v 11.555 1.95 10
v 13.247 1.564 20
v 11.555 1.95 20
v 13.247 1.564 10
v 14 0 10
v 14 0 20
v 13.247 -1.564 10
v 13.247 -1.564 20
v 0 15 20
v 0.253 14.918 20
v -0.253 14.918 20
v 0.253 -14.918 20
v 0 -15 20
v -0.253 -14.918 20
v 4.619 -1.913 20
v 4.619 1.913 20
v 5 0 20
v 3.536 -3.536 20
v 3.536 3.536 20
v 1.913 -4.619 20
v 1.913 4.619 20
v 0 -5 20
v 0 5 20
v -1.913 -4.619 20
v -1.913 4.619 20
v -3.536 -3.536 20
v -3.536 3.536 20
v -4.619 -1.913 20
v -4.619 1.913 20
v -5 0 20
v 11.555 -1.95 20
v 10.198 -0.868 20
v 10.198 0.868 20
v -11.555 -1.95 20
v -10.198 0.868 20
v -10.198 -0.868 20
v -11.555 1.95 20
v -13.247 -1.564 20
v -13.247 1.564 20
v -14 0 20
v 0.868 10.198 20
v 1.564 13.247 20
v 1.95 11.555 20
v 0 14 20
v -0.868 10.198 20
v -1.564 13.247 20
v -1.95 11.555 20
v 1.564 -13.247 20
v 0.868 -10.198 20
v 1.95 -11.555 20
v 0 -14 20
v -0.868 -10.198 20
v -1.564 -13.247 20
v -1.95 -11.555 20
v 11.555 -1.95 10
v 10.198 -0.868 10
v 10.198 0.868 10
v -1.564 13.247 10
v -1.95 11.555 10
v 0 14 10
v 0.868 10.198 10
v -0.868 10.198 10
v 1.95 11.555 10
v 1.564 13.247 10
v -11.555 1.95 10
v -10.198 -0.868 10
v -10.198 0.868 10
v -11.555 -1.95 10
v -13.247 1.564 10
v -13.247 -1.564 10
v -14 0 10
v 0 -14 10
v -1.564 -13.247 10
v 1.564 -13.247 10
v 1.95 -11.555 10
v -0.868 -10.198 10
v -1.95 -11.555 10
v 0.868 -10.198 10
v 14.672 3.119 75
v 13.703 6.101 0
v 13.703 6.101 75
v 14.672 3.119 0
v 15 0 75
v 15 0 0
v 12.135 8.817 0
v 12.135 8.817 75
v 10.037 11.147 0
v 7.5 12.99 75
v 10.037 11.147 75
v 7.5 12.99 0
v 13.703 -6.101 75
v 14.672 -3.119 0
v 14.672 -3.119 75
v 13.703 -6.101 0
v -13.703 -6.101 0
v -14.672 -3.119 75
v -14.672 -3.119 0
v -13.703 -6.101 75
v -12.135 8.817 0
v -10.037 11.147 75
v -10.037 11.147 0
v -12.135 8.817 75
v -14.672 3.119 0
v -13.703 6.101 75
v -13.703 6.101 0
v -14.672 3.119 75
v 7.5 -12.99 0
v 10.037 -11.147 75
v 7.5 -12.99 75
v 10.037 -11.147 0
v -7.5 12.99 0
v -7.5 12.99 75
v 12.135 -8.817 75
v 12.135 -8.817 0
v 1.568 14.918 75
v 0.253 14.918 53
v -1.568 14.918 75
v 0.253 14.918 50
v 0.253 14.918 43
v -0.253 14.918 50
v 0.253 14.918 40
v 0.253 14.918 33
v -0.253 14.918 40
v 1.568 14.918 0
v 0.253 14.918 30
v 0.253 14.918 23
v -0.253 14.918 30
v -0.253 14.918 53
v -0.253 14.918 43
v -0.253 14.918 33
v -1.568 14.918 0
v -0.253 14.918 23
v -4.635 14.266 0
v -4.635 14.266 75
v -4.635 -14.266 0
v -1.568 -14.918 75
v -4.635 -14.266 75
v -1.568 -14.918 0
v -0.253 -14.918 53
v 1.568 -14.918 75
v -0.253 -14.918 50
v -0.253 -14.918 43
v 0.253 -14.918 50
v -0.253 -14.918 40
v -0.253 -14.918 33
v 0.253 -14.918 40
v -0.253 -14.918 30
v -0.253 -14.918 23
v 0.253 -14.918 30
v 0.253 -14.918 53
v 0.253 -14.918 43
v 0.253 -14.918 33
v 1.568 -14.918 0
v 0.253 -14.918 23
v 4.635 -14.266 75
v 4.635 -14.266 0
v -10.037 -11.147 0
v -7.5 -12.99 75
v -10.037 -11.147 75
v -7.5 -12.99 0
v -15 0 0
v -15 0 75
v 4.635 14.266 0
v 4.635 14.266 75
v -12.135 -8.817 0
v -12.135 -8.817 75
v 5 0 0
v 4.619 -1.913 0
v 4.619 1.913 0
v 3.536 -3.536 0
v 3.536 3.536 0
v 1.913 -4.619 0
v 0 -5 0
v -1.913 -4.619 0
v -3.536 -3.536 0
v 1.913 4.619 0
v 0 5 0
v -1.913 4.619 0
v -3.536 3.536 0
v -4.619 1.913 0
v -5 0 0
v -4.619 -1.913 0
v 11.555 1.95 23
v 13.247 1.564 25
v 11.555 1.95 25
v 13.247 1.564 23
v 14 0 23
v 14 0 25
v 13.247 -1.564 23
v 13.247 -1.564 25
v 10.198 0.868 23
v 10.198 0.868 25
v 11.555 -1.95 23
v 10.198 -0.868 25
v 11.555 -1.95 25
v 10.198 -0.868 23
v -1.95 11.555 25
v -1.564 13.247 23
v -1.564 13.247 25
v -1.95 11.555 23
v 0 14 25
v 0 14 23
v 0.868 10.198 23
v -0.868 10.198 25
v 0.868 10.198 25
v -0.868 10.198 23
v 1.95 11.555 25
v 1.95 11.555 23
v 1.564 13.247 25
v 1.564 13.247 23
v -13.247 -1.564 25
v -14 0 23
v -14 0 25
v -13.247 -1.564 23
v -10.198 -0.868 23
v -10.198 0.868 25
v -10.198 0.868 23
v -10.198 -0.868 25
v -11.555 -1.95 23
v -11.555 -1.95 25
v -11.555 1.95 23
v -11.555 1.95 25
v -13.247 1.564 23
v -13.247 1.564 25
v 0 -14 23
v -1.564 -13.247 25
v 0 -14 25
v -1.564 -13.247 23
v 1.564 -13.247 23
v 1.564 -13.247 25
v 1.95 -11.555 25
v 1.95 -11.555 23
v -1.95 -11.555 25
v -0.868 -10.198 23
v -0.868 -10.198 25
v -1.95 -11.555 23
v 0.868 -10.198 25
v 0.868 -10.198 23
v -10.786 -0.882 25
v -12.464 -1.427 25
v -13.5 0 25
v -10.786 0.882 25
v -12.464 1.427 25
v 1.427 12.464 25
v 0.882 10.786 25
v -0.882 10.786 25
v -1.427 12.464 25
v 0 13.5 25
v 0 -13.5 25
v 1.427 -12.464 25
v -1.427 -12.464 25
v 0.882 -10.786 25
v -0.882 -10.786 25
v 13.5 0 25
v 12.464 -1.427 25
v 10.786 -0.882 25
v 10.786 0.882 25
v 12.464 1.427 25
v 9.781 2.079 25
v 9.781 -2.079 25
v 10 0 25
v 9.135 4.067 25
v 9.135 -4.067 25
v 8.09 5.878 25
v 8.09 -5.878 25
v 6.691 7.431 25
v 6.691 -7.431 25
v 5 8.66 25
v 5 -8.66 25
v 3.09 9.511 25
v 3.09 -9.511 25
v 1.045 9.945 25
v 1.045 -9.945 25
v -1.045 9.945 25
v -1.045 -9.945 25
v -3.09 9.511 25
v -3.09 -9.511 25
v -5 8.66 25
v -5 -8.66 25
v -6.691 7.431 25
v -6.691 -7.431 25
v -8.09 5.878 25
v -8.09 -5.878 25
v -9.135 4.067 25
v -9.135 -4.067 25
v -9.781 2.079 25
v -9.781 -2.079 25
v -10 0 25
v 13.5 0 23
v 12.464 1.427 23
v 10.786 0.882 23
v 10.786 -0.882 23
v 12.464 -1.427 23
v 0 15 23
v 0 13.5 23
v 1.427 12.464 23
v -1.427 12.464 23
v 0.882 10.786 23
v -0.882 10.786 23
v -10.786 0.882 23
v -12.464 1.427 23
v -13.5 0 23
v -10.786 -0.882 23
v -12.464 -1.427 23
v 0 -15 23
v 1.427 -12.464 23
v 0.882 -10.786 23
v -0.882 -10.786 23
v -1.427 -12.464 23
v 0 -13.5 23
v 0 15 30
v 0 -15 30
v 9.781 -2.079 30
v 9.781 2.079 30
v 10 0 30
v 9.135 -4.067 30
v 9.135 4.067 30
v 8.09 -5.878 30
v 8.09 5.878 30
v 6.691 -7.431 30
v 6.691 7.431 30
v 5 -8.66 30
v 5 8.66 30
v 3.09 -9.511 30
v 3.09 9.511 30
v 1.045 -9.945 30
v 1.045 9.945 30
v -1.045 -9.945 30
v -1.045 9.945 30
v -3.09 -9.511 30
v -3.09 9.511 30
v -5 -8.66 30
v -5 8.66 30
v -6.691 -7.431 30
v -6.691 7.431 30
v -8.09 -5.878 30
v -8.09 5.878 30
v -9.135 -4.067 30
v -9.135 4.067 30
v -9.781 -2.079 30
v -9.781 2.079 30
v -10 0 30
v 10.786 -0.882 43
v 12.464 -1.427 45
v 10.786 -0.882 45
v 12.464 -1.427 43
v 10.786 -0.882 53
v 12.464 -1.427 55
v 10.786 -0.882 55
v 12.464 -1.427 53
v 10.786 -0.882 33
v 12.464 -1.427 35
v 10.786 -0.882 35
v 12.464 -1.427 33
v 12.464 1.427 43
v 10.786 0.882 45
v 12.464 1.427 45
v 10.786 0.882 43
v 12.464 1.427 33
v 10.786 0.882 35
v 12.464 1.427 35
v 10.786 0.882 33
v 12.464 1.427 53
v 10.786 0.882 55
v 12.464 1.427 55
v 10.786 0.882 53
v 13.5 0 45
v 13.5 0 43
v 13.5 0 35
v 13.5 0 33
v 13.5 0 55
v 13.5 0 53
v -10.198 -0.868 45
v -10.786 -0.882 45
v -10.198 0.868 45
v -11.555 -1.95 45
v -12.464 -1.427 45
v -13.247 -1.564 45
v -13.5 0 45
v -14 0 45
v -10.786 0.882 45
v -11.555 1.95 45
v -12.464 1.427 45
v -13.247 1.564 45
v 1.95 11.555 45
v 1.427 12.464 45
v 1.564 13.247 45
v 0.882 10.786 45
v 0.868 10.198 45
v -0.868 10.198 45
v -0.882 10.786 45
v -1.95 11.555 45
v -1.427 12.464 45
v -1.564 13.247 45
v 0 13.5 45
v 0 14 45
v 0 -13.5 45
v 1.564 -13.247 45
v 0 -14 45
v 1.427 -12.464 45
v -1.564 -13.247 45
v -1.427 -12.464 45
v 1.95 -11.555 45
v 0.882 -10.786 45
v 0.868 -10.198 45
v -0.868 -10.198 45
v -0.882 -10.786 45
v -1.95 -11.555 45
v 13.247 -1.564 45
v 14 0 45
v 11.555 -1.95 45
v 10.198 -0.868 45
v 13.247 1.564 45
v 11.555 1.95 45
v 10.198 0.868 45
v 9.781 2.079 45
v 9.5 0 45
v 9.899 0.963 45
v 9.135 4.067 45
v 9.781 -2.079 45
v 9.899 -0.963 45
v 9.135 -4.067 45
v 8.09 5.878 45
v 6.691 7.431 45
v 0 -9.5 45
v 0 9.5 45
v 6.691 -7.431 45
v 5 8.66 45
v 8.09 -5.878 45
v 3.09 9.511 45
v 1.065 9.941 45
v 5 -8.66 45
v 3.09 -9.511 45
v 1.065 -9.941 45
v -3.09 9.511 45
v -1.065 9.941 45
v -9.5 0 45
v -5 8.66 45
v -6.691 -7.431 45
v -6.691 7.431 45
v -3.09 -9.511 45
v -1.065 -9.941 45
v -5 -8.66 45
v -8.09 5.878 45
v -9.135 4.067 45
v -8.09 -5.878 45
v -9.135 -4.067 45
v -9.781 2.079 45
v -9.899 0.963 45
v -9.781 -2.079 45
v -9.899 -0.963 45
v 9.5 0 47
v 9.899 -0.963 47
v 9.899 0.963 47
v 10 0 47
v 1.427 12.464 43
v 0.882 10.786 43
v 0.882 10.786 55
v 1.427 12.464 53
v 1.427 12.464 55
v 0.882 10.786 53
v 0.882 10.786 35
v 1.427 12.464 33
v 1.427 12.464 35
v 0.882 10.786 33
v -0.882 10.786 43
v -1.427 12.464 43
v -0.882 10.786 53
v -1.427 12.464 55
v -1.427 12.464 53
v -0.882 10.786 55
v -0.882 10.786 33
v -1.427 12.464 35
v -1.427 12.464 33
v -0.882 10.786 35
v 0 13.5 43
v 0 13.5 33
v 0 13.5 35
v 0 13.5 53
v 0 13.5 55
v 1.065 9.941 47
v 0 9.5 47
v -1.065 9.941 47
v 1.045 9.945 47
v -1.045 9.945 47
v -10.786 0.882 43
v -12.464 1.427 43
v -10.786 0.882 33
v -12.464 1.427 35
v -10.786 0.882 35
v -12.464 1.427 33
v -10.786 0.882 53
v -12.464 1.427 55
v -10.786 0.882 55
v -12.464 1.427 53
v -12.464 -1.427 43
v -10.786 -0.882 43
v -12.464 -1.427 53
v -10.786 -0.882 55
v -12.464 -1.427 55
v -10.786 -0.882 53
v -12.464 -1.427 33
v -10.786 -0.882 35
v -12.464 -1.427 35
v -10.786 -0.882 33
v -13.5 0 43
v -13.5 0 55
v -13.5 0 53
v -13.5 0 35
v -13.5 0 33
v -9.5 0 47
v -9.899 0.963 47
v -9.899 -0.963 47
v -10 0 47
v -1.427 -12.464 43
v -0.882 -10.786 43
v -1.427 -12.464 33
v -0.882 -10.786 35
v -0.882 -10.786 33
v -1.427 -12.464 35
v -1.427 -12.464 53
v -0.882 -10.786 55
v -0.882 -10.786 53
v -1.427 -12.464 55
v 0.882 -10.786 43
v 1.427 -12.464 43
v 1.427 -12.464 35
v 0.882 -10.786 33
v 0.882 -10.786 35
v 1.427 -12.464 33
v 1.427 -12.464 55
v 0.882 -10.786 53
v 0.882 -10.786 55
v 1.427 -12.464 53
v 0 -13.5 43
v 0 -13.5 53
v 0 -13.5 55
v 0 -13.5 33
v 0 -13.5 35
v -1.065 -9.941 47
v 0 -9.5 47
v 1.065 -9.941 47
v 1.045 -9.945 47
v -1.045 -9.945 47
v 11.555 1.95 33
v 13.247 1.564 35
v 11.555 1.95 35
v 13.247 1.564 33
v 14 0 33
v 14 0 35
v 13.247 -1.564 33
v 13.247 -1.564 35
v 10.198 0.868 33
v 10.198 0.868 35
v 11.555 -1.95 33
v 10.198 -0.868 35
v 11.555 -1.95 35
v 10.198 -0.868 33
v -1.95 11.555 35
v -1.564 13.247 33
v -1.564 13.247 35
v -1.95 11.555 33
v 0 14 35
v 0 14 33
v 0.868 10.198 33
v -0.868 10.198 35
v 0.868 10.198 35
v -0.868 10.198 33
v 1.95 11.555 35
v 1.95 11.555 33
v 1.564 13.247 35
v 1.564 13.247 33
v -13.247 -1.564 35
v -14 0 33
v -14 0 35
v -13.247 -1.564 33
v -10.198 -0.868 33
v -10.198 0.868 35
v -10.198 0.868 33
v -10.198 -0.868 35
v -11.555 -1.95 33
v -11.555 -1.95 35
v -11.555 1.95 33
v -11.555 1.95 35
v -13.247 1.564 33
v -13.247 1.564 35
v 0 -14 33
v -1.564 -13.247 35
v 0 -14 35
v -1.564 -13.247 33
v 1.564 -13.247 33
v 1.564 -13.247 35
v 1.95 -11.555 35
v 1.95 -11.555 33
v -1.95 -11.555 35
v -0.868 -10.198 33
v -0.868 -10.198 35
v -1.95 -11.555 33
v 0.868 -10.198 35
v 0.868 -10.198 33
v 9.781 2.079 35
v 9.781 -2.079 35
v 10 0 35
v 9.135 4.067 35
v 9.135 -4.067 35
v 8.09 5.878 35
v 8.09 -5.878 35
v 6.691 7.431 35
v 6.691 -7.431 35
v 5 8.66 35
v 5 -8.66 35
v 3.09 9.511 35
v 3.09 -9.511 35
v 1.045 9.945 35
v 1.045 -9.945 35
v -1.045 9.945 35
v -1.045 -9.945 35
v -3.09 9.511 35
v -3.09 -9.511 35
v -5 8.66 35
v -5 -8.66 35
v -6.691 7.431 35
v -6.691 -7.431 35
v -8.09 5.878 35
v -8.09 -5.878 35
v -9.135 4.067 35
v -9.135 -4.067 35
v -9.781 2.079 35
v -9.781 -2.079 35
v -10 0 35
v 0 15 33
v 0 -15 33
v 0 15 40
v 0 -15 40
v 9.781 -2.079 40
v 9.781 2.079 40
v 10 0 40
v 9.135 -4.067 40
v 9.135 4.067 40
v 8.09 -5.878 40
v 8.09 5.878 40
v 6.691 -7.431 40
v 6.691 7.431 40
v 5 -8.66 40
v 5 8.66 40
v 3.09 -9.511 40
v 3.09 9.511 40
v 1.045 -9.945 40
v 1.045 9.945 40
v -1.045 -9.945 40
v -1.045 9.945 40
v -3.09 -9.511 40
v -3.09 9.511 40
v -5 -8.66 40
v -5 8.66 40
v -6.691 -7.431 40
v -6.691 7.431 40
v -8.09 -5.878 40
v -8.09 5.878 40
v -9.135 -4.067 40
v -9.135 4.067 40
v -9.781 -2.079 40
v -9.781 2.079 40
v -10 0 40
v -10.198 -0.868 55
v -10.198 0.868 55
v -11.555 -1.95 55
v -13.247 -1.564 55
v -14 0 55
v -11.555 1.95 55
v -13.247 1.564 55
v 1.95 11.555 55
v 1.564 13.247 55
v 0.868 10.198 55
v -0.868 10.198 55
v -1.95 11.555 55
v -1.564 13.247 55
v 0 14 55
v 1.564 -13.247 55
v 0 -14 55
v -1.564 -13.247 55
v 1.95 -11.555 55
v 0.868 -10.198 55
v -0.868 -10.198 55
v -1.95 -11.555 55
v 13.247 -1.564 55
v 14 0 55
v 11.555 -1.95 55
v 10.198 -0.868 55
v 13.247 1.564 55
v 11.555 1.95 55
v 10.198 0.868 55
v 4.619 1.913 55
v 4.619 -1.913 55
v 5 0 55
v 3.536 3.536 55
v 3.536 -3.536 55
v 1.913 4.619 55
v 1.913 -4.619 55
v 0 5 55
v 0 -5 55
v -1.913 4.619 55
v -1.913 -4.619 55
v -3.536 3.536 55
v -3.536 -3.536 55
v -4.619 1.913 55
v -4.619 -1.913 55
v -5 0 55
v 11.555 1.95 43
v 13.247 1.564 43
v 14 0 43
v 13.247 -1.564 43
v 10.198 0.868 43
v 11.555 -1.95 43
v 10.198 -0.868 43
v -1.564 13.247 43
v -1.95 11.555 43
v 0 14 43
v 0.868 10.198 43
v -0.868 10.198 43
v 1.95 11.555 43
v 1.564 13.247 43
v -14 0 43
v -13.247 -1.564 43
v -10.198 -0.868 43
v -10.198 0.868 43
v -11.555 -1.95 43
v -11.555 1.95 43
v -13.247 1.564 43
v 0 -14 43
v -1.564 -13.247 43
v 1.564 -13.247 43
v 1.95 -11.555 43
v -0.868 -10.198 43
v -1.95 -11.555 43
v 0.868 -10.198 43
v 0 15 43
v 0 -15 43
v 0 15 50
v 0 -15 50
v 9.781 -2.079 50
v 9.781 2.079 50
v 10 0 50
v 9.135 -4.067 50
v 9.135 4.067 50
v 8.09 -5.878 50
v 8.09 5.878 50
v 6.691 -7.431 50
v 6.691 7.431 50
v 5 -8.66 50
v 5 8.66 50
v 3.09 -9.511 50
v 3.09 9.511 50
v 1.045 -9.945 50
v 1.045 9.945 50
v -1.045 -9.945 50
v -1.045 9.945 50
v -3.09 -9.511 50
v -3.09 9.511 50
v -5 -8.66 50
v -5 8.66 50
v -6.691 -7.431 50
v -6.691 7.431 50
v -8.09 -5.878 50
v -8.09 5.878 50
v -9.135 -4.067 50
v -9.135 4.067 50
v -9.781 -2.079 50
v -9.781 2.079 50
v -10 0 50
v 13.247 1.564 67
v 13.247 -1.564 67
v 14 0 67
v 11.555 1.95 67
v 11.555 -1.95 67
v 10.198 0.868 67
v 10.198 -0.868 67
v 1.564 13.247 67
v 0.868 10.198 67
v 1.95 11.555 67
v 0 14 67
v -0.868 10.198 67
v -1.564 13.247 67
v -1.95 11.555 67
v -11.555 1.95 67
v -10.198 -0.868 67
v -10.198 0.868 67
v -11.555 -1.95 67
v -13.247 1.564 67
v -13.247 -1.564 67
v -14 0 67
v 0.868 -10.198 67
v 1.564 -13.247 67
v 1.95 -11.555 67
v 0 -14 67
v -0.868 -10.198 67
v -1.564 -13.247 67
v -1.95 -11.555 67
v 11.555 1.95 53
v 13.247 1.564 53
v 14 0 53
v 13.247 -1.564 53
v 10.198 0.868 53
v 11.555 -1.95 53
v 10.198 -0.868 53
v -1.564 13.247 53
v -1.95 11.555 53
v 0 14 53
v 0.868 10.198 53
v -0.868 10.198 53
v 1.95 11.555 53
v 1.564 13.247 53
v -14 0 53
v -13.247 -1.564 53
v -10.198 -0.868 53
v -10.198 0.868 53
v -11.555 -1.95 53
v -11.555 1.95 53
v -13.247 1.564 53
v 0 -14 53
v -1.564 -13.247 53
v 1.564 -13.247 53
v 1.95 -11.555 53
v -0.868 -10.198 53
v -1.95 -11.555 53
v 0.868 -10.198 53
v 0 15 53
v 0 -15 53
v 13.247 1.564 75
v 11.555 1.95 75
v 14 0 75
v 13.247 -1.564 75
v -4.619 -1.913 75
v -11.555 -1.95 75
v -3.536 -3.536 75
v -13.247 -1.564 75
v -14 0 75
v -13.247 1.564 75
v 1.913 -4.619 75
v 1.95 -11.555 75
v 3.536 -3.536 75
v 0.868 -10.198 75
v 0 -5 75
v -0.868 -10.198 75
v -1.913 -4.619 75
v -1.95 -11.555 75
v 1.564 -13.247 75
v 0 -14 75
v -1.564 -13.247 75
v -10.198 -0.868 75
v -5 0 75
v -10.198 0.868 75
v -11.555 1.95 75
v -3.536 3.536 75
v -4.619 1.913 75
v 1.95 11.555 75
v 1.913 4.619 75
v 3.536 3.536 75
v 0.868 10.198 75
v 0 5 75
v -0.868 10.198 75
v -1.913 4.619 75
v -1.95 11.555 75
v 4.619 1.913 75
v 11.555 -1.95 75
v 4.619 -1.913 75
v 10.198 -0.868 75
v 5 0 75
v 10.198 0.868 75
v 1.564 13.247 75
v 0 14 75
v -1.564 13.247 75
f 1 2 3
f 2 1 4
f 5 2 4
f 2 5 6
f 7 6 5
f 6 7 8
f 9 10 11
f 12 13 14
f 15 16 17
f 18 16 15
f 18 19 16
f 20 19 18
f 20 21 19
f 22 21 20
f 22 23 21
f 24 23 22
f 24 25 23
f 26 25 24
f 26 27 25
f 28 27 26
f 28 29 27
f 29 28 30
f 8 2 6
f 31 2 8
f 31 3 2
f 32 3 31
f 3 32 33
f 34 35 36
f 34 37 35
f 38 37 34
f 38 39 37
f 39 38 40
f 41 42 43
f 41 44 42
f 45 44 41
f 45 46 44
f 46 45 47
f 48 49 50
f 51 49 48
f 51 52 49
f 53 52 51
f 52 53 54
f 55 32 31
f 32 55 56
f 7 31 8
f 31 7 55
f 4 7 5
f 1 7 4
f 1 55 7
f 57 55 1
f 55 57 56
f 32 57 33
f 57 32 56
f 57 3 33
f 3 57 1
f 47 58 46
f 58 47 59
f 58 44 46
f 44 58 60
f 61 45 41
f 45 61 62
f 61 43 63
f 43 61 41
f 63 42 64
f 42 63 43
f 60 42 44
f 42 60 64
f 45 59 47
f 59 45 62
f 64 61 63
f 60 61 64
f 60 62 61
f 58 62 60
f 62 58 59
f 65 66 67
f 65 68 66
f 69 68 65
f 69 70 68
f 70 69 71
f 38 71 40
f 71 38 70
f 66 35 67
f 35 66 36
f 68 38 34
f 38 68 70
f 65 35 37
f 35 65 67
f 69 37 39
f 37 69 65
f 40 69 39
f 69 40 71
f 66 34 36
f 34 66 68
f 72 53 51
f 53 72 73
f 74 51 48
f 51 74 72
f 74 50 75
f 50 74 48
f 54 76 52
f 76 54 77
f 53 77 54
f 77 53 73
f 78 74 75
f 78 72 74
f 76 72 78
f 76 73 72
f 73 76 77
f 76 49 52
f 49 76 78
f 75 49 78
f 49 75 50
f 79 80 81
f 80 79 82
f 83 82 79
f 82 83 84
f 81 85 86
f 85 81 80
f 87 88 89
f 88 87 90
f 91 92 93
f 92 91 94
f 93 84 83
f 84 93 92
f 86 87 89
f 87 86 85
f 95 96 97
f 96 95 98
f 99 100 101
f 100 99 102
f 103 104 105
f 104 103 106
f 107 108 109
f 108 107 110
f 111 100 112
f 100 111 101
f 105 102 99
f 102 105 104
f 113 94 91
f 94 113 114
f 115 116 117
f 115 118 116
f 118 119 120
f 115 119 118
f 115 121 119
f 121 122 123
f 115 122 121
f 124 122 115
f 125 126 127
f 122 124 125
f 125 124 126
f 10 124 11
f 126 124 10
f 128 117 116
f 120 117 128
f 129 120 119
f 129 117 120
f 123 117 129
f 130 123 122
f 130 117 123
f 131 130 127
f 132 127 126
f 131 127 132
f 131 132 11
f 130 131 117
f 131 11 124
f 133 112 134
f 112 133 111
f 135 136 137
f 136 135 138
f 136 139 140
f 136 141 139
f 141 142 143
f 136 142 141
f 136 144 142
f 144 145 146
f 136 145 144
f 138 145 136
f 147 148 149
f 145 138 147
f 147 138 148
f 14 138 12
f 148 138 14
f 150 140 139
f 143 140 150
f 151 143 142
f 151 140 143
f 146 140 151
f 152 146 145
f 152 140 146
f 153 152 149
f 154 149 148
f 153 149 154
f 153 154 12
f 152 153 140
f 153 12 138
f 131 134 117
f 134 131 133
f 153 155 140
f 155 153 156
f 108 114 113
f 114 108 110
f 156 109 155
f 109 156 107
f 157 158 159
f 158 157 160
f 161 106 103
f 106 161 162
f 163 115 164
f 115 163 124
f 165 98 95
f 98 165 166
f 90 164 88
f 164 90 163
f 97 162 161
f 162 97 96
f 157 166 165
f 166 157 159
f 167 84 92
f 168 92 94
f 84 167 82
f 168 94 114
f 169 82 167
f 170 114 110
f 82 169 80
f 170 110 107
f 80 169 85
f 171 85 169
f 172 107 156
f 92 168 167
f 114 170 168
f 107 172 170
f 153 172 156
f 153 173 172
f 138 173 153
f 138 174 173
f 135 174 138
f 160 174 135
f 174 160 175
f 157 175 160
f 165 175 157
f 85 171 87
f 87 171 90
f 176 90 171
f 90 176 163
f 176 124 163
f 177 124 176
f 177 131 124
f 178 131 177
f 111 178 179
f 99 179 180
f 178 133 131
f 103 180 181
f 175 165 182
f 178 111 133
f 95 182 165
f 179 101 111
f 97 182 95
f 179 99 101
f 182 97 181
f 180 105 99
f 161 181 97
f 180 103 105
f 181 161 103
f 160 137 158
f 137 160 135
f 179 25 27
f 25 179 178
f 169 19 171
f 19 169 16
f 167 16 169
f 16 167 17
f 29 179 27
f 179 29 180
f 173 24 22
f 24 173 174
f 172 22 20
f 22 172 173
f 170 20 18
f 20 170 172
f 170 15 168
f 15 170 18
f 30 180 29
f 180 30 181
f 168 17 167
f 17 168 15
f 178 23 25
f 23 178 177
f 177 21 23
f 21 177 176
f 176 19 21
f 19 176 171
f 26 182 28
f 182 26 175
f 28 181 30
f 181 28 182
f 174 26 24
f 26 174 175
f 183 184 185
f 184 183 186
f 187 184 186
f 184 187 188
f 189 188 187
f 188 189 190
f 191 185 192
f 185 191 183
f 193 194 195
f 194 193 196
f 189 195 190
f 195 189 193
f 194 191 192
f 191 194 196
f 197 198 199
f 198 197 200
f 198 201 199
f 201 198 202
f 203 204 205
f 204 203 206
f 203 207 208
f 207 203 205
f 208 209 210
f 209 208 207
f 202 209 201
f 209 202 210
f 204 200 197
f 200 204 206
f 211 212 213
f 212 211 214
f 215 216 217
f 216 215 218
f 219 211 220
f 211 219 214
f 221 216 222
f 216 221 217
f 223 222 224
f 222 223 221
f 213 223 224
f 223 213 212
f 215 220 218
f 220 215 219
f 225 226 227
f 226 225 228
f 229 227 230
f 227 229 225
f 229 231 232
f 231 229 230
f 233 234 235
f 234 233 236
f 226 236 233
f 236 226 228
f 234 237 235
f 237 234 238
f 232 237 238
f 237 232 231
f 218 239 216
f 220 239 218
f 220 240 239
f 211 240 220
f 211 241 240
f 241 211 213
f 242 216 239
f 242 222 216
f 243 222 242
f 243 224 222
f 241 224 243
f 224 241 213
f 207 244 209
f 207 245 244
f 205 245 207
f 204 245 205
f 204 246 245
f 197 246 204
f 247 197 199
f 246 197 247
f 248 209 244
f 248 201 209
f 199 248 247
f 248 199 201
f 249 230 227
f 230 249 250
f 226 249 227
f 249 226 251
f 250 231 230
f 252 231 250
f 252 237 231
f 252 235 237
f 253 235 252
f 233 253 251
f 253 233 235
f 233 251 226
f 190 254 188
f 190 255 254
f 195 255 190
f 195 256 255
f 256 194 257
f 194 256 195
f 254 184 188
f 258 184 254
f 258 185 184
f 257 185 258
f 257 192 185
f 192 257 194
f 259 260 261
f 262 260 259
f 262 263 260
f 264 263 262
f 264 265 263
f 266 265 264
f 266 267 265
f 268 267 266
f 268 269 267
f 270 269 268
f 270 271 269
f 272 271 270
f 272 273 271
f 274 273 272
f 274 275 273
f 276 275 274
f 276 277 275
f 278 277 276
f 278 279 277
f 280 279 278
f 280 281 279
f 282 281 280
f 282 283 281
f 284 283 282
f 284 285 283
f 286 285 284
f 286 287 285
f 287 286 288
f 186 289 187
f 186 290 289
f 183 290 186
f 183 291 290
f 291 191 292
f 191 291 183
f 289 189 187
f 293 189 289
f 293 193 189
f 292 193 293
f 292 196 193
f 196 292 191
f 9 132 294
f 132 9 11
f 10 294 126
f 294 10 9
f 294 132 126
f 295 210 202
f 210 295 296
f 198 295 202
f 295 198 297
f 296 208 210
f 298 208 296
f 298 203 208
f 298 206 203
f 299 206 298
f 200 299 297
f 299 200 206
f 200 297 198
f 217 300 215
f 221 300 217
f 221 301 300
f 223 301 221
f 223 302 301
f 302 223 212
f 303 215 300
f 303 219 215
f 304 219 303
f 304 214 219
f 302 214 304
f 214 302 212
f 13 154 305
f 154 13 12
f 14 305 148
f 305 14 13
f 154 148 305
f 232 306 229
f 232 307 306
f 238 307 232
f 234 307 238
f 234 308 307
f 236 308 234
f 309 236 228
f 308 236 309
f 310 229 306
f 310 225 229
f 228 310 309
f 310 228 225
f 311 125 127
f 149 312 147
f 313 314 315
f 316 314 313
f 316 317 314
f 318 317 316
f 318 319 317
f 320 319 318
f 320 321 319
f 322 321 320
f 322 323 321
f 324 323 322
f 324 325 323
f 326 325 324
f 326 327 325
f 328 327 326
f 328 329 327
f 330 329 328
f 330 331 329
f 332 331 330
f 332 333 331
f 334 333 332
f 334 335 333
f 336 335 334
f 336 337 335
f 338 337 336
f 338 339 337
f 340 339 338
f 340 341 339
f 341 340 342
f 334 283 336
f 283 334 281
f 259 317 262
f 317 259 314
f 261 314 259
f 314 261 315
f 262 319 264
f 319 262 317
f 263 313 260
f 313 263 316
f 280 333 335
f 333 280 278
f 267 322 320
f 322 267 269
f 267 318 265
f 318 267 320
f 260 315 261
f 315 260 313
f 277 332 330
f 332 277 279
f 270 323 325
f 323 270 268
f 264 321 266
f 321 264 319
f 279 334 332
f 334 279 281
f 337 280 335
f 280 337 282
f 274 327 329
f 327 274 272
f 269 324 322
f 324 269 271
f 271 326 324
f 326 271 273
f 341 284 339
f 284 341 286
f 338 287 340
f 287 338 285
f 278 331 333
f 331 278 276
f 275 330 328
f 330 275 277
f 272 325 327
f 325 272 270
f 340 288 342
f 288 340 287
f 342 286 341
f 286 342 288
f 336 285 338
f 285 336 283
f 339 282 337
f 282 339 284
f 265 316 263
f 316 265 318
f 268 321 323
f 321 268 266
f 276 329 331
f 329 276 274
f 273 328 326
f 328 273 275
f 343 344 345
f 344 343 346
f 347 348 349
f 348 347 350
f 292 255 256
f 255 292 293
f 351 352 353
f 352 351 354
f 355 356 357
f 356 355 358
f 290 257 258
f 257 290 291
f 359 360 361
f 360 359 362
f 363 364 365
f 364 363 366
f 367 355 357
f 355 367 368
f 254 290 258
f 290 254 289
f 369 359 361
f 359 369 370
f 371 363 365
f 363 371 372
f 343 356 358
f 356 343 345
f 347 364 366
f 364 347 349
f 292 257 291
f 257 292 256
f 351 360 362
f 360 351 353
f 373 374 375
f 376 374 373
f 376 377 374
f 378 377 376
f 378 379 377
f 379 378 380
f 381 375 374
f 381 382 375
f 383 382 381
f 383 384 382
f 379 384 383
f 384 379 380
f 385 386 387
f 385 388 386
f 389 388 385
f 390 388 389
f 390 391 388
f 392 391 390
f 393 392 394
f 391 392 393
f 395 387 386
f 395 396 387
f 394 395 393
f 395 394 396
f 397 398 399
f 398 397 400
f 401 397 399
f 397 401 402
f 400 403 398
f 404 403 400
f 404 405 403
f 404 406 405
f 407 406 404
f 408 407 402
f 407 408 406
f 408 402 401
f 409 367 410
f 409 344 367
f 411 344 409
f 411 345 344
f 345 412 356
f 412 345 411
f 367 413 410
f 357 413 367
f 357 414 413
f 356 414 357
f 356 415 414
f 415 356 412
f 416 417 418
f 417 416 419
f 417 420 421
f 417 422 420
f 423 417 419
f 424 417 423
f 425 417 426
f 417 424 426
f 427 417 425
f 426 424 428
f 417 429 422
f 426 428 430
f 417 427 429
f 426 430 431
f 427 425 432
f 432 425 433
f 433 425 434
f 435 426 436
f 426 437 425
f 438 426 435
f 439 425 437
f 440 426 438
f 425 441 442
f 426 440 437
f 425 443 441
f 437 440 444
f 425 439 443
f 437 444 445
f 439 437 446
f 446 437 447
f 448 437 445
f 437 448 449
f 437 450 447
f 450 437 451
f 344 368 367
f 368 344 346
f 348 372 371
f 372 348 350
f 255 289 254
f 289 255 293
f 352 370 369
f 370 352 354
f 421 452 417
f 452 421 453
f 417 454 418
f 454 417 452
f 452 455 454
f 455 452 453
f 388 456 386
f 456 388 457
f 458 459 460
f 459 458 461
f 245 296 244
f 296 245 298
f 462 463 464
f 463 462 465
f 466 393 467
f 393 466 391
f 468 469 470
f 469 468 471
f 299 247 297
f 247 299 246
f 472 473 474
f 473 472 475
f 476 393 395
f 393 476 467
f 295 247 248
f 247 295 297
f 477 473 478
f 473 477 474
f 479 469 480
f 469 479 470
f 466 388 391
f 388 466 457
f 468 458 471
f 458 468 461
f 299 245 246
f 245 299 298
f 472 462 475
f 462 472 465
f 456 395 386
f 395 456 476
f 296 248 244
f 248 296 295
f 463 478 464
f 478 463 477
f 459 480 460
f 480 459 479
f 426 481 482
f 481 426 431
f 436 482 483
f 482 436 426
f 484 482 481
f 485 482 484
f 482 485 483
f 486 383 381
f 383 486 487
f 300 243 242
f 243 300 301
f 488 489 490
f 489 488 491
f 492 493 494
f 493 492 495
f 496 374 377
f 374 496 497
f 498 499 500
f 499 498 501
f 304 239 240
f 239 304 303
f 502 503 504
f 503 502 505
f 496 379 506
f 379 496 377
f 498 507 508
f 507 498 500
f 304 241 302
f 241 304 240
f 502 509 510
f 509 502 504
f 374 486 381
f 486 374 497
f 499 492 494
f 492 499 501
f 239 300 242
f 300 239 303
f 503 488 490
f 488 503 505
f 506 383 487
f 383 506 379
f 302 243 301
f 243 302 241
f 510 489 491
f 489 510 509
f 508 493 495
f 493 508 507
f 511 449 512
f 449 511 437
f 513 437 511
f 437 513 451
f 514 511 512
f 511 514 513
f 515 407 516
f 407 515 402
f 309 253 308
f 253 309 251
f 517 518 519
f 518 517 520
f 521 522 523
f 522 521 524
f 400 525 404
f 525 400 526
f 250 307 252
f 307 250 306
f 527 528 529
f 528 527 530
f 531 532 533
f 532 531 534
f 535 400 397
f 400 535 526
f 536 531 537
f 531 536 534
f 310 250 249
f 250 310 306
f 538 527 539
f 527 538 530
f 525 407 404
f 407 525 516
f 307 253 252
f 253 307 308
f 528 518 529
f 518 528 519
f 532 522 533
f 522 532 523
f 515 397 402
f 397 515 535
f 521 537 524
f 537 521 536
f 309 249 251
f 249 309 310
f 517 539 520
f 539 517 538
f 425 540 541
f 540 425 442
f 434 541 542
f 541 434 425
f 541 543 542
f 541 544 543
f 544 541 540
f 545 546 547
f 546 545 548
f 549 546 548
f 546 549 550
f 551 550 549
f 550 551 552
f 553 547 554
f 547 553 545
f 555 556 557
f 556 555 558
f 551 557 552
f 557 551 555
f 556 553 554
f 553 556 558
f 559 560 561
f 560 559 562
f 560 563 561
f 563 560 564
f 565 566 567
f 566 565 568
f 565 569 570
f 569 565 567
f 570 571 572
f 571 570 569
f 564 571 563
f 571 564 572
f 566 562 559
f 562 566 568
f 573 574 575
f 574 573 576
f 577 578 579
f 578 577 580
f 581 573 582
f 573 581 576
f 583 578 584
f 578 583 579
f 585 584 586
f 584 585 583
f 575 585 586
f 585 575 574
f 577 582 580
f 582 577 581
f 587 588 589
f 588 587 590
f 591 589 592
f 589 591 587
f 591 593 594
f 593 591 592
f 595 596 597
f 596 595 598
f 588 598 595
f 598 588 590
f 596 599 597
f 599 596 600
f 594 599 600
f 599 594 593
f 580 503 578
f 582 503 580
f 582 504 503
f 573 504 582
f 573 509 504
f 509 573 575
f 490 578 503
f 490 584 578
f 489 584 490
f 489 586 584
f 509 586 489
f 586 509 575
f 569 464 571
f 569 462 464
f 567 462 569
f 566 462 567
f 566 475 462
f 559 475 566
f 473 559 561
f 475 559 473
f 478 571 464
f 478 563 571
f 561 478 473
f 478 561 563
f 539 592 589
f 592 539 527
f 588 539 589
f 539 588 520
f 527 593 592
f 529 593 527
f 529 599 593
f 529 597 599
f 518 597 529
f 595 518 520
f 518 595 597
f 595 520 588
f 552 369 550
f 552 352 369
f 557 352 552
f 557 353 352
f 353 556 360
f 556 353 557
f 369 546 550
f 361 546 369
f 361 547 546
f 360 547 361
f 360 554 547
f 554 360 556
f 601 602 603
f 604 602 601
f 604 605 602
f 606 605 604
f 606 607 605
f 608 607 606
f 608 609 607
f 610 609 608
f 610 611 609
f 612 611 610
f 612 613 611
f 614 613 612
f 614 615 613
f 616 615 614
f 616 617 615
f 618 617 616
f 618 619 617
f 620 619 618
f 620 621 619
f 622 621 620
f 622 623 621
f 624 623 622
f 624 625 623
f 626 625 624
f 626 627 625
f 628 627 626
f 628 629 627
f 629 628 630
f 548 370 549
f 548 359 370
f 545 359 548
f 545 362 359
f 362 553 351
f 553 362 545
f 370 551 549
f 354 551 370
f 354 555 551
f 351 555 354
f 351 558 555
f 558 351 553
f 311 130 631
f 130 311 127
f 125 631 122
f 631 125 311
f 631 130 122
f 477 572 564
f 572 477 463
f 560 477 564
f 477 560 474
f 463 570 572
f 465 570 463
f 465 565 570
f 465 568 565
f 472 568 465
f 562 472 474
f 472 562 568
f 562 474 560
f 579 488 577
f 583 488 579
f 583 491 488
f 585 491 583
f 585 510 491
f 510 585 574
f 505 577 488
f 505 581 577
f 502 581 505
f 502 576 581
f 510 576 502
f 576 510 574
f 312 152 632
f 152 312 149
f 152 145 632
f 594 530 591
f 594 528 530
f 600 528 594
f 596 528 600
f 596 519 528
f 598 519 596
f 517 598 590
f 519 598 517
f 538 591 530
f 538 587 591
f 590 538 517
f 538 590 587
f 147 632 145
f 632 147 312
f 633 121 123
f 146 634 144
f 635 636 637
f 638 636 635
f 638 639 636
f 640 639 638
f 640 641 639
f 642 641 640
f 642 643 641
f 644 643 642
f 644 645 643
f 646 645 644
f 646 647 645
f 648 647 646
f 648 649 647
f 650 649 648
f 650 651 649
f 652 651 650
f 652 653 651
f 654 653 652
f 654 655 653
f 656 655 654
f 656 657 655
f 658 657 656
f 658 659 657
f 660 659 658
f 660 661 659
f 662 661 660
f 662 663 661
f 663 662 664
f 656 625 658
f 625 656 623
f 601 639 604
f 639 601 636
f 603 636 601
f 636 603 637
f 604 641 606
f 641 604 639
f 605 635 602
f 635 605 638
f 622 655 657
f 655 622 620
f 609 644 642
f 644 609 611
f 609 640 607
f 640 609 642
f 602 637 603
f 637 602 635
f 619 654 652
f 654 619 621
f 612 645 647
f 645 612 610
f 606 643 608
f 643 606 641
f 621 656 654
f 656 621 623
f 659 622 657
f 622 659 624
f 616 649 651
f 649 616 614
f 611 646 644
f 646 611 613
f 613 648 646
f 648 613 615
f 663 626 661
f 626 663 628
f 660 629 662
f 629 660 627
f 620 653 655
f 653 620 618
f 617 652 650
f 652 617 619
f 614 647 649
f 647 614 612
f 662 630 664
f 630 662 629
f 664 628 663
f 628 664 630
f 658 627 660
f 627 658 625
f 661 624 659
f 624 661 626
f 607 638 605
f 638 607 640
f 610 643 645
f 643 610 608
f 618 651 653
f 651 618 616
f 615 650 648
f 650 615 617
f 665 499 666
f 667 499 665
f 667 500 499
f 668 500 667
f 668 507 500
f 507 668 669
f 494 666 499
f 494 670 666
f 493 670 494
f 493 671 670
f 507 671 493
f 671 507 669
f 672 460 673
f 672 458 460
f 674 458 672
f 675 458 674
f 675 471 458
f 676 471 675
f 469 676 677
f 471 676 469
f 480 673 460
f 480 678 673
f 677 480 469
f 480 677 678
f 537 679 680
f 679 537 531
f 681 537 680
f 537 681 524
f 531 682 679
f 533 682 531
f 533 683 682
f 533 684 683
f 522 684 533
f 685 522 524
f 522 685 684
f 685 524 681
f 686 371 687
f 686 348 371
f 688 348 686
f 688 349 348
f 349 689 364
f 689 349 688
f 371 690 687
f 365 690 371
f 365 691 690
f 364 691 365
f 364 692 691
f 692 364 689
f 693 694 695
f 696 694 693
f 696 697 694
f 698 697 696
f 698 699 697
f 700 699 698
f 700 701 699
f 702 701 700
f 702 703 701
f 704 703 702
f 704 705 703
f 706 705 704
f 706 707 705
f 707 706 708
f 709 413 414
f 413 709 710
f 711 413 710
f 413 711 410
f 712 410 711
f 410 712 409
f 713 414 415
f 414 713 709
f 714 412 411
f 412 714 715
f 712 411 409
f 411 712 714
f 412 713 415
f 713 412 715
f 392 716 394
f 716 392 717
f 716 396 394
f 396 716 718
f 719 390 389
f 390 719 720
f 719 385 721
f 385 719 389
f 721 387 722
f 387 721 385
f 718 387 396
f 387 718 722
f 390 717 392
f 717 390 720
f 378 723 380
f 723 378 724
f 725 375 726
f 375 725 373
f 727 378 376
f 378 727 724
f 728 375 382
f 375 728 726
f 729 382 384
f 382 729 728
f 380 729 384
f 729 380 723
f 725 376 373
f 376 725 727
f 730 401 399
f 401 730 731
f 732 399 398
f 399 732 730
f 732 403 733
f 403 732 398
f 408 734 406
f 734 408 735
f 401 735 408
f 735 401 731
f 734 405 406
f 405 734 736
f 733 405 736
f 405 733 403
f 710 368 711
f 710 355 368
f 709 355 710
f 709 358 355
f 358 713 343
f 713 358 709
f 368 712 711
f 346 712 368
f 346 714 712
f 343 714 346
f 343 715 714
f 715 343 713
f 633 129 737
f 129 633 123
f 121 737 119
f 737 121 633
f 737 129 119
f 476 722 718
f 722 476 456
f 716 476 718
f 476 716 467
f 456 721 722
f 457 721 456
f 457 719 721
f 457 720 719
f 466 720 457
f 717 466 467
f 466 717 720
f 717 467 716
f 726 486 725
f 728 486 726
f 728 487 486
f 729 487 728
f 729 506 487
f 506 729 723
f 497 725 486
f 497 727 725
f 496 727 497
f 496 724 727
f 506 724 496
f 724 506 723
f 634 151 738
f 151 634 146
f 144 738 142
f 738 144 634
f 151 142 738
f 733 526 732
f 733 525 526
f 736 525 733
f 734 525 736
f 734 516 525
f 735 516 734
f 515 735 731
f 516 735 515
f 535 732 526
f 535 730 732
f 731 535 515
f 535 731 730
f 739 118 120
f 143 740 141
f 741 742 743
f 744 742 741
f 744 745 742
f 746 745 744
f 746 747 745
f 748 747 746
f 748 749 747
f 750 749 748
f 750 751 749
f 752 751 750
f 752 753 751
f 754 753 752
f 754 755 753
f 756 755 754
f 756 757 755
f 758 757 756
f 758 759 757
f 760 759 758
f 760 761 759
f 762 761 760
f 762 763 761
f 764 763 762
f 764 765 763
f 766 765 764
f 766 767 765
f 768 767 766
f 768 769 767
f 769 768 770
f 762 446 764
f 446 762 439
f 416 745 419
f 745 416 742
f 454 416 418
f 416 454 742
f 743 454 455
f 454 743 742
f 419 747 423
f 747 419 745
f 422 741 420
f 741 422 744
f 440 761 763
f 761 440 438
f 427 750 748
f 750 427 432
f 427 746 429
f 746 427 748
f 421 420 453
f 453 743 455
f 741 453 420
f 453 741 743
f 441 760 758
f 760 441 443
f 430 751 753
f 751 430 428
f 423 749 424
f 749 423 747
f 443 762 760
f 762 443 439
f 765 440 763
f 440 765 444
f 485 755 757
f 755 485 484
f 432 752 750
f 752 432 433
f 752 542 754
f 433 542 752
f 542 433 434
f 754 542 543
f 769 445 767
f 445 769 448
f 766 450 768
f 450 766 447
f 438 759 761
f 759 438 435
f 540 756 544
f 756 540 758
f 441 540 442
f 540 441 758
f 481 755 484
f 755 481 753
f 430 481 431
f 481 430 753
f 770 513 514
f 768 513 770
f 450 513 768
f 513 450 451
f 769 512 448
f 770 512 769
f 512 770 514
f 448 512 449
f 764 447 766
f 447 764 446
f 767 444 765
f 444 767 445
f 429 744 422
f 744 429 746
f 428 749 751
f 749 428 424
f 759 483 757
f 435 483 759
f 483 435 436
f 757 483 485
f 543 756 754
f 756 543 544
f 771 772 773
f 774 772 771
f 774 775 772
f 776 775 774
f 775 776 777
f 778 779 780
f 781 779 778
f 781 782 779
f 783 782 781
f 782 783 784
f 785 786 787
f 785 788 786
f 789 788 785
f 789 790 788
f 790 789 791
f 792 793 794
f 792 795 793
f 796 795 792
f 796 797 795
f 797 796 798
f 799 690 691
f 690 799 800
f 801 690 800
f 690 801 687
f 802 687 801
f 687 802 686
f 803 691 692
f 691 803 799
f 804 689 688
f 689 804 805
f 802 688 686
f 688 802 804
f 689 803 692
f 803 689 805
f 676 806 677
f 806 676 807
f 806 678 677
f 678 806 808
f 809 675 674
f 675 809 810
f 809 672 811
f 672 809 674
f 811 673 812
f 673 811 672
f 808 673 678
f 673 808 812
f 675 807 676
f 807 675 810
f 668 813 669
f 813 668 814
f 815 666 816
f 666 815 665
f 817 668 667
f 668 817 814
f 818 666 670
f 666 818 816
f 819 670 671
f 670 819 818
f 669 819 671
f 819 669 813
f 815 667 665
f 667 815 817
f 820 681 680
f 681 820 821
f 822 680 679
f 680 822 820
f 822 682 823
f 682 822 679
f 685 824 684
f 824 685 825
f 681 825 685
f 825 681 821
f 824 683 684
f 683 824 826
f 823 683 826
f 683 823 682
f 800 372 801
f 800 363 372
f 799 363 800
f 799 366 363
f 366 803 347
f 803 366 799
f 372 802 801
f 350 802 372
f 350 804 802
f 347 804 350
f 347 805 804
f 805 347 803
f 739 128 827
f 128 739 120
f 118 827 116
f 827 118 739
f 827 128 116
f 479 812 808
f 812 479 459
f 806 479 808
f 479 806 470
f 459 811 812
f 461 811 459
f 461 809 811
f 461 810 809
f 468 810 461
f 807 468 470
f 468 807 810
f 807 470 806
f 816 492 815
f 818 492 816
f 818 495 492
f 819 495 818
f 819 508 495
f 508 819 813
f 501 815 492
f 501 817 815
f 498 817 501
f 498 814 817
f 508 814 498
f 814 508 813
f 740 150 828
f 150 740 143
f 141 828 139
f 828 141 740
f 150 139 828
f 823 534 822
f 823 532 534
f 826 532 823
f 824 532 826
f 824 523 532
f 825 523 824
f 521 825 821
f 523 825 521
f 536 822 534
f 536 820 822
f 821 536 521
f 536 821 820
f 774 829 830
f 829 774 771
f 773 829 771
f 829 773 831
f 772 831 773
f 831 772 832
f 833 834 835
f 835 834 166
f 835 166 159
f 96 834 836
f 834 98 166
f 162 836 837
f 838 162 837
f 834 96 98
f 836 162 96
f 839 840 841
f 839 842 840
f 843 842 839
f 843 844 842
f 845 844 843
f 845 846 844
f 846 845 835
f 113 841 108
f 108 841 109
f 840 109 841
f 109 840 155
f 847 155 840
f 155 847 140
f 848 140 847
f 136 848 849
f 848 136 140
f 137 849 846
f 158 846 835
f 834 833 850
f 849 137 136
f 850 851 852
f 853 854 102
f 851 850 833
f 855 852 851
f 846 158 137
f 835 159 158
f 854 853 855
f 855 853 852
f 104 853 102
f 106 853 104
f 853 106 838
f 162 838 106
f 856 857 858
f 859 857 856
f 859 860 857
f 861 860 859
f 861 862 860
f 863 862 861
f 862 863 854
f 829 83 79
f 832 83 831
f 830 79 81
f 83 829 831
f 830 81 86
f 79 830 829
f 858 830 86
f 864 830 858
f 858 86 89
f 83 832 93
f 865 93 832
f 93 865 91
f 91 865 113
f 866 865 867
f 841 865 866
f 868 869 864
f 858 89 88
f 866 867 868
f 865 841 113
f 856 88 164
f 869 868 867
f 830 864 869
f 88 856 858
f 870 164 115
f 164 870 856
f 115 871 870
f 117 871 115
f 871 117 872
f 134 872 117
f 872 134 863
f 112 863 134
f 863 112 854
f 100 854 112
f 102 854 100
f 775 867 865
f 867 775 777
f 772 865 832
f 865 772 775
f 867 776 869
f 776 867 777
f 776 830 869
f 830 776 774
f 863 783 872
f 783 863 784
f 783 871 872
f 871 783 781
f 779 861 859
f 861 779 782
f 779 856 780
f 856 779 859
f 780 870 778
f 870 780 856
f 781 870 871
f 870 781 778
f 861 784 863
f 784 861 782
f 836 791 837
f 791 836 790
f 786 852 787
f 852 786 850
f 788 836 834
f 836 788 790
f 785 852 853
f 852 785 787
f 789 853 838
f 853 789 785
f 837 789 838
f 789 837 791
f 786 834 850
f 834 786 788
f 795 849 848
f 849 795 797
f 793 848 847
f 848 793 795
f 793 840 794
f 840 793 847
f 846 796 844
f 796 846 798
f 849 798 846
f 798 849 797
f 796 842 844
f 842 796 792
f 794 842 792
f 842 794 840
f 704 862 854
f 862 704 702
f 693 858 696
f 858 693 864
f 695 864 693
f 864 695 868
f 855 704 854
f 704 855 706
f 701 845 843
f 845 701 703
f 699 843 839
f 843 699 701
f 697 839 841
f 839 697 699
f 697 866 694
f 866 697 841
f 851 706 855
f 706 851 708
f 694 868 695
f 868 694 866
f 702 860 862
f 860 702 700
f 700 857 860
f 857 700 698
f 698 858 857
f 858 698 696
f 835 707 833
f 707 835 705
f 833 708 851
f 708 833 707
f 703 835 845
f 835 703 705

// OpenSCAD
// Parameters for components
module input_shaft_hub() {
    difference() {
        cylinder(h=20, d=30); // Main cylindrical hub
        translate([0, 0, -1]) cylinder(h=22, d=10); // Central hole
        for (i = [0:90:270]) {
            rotate([0, 0, i]) translate([12, 0, 10]) cylinder(h=10, d=4); // Bolt holes
        }
    }
}

module output_shaft_hub() {
    difference() {
        cylinder(h=20, d=30); // Main cylindrical hub
        translate([0, 0, -1]) cylinder(h=22, d=10); // Central hole
        for (i = [0:90:270]) {
            rotate([0, 0, i]) translate([12, 0, 10]) cylinder(h=10, d=4); // Bolt holes
        }
    }
}

module spacer_ring() {
    difference() {
        cylinder(h=5, d=30); // Outer ring
        translate([0, 0, -1]) cylinder(h=7, d=20); // Inner hole
    }
}

module flange_plate() {
    difference() {
        cylinder(h=5, d=30); // Main plate
        for (i = [0:90:270]) {
            rotate([0, 0, i]) translate([12, 0, -1]) cylinder(h=7, d=4); // Bolt holes
        }
    }
}

module bolt() {
    union() {
        cylinder(h=25, d=3); // Bolt shaft
        translate([0, 0, 25]) cylinder(h=2, d=5); // Bolt head
    }
}

module nut() {
    cylinder(h=3, d=6); // Hexagonal nut
}

// Assembly
module flexible_coupling() {
    // Layer 1: Input shaft hub
    input_shaft_hub();

    // Layer 2: First flange plate and nuts
    translate([0, 0, 20]) flange_plate();
    for (i = [0:90:270]) {
        rotate([0, 0, i]) translate([12, 0, 20]) nut();
    }

    // Layer 3: First spacer ring and bolts
    translate([0, 0, 25]) spacer_ring();
    for (i = [0:90:270]) {
        rotate([0, 0, i]) translate([12, 0, 20]) bolt();
    }

    // Layer 4: Second flange plate and nuts
    translate([0, 0, 30]) flange_plate();
    for (i = [0:90:270]) {
        rotate([0, 0, i]) translate([12, 0, 30]) nut();
    }

    // Layer 5: Second spacer ring and bolts
    translate([0, 0, 35]) spacer_ring();
    for (i = [0:90:270]) {
        rotate([0, 0, i]) translate([12, 0, 30]) bolt();
    }

    // Layer 6: Third flange plate and nuts
    translate([0, 0, 40]) flange_plate();
    for (i = [0:90:270]) {
        rotate([0, 0, i]) translate([12, 0, 40]) nut();
    }

    // Layer 7: Third spacer ring and bolts
    translate([0, 0, 45]) spacer_ring();
    for (i = [0:90:270]) {
        rotate([0, 0, i]) translate([12, 0, 40]) bolt();
    }

    // Layer 8: Fourth flange plate and nuts
    translate([0, 0, 50]) flange_plate();
    for (i = [0:90:270]) {
        rotate([0, 0, i]) translate([12, 0, 50]) nut();
    }

    // Layer 9: Output shaft hub
    translate([0, 0, 55]) output_shaft_hub();
}

// Render the flexible coupling
flexible_coupling();
